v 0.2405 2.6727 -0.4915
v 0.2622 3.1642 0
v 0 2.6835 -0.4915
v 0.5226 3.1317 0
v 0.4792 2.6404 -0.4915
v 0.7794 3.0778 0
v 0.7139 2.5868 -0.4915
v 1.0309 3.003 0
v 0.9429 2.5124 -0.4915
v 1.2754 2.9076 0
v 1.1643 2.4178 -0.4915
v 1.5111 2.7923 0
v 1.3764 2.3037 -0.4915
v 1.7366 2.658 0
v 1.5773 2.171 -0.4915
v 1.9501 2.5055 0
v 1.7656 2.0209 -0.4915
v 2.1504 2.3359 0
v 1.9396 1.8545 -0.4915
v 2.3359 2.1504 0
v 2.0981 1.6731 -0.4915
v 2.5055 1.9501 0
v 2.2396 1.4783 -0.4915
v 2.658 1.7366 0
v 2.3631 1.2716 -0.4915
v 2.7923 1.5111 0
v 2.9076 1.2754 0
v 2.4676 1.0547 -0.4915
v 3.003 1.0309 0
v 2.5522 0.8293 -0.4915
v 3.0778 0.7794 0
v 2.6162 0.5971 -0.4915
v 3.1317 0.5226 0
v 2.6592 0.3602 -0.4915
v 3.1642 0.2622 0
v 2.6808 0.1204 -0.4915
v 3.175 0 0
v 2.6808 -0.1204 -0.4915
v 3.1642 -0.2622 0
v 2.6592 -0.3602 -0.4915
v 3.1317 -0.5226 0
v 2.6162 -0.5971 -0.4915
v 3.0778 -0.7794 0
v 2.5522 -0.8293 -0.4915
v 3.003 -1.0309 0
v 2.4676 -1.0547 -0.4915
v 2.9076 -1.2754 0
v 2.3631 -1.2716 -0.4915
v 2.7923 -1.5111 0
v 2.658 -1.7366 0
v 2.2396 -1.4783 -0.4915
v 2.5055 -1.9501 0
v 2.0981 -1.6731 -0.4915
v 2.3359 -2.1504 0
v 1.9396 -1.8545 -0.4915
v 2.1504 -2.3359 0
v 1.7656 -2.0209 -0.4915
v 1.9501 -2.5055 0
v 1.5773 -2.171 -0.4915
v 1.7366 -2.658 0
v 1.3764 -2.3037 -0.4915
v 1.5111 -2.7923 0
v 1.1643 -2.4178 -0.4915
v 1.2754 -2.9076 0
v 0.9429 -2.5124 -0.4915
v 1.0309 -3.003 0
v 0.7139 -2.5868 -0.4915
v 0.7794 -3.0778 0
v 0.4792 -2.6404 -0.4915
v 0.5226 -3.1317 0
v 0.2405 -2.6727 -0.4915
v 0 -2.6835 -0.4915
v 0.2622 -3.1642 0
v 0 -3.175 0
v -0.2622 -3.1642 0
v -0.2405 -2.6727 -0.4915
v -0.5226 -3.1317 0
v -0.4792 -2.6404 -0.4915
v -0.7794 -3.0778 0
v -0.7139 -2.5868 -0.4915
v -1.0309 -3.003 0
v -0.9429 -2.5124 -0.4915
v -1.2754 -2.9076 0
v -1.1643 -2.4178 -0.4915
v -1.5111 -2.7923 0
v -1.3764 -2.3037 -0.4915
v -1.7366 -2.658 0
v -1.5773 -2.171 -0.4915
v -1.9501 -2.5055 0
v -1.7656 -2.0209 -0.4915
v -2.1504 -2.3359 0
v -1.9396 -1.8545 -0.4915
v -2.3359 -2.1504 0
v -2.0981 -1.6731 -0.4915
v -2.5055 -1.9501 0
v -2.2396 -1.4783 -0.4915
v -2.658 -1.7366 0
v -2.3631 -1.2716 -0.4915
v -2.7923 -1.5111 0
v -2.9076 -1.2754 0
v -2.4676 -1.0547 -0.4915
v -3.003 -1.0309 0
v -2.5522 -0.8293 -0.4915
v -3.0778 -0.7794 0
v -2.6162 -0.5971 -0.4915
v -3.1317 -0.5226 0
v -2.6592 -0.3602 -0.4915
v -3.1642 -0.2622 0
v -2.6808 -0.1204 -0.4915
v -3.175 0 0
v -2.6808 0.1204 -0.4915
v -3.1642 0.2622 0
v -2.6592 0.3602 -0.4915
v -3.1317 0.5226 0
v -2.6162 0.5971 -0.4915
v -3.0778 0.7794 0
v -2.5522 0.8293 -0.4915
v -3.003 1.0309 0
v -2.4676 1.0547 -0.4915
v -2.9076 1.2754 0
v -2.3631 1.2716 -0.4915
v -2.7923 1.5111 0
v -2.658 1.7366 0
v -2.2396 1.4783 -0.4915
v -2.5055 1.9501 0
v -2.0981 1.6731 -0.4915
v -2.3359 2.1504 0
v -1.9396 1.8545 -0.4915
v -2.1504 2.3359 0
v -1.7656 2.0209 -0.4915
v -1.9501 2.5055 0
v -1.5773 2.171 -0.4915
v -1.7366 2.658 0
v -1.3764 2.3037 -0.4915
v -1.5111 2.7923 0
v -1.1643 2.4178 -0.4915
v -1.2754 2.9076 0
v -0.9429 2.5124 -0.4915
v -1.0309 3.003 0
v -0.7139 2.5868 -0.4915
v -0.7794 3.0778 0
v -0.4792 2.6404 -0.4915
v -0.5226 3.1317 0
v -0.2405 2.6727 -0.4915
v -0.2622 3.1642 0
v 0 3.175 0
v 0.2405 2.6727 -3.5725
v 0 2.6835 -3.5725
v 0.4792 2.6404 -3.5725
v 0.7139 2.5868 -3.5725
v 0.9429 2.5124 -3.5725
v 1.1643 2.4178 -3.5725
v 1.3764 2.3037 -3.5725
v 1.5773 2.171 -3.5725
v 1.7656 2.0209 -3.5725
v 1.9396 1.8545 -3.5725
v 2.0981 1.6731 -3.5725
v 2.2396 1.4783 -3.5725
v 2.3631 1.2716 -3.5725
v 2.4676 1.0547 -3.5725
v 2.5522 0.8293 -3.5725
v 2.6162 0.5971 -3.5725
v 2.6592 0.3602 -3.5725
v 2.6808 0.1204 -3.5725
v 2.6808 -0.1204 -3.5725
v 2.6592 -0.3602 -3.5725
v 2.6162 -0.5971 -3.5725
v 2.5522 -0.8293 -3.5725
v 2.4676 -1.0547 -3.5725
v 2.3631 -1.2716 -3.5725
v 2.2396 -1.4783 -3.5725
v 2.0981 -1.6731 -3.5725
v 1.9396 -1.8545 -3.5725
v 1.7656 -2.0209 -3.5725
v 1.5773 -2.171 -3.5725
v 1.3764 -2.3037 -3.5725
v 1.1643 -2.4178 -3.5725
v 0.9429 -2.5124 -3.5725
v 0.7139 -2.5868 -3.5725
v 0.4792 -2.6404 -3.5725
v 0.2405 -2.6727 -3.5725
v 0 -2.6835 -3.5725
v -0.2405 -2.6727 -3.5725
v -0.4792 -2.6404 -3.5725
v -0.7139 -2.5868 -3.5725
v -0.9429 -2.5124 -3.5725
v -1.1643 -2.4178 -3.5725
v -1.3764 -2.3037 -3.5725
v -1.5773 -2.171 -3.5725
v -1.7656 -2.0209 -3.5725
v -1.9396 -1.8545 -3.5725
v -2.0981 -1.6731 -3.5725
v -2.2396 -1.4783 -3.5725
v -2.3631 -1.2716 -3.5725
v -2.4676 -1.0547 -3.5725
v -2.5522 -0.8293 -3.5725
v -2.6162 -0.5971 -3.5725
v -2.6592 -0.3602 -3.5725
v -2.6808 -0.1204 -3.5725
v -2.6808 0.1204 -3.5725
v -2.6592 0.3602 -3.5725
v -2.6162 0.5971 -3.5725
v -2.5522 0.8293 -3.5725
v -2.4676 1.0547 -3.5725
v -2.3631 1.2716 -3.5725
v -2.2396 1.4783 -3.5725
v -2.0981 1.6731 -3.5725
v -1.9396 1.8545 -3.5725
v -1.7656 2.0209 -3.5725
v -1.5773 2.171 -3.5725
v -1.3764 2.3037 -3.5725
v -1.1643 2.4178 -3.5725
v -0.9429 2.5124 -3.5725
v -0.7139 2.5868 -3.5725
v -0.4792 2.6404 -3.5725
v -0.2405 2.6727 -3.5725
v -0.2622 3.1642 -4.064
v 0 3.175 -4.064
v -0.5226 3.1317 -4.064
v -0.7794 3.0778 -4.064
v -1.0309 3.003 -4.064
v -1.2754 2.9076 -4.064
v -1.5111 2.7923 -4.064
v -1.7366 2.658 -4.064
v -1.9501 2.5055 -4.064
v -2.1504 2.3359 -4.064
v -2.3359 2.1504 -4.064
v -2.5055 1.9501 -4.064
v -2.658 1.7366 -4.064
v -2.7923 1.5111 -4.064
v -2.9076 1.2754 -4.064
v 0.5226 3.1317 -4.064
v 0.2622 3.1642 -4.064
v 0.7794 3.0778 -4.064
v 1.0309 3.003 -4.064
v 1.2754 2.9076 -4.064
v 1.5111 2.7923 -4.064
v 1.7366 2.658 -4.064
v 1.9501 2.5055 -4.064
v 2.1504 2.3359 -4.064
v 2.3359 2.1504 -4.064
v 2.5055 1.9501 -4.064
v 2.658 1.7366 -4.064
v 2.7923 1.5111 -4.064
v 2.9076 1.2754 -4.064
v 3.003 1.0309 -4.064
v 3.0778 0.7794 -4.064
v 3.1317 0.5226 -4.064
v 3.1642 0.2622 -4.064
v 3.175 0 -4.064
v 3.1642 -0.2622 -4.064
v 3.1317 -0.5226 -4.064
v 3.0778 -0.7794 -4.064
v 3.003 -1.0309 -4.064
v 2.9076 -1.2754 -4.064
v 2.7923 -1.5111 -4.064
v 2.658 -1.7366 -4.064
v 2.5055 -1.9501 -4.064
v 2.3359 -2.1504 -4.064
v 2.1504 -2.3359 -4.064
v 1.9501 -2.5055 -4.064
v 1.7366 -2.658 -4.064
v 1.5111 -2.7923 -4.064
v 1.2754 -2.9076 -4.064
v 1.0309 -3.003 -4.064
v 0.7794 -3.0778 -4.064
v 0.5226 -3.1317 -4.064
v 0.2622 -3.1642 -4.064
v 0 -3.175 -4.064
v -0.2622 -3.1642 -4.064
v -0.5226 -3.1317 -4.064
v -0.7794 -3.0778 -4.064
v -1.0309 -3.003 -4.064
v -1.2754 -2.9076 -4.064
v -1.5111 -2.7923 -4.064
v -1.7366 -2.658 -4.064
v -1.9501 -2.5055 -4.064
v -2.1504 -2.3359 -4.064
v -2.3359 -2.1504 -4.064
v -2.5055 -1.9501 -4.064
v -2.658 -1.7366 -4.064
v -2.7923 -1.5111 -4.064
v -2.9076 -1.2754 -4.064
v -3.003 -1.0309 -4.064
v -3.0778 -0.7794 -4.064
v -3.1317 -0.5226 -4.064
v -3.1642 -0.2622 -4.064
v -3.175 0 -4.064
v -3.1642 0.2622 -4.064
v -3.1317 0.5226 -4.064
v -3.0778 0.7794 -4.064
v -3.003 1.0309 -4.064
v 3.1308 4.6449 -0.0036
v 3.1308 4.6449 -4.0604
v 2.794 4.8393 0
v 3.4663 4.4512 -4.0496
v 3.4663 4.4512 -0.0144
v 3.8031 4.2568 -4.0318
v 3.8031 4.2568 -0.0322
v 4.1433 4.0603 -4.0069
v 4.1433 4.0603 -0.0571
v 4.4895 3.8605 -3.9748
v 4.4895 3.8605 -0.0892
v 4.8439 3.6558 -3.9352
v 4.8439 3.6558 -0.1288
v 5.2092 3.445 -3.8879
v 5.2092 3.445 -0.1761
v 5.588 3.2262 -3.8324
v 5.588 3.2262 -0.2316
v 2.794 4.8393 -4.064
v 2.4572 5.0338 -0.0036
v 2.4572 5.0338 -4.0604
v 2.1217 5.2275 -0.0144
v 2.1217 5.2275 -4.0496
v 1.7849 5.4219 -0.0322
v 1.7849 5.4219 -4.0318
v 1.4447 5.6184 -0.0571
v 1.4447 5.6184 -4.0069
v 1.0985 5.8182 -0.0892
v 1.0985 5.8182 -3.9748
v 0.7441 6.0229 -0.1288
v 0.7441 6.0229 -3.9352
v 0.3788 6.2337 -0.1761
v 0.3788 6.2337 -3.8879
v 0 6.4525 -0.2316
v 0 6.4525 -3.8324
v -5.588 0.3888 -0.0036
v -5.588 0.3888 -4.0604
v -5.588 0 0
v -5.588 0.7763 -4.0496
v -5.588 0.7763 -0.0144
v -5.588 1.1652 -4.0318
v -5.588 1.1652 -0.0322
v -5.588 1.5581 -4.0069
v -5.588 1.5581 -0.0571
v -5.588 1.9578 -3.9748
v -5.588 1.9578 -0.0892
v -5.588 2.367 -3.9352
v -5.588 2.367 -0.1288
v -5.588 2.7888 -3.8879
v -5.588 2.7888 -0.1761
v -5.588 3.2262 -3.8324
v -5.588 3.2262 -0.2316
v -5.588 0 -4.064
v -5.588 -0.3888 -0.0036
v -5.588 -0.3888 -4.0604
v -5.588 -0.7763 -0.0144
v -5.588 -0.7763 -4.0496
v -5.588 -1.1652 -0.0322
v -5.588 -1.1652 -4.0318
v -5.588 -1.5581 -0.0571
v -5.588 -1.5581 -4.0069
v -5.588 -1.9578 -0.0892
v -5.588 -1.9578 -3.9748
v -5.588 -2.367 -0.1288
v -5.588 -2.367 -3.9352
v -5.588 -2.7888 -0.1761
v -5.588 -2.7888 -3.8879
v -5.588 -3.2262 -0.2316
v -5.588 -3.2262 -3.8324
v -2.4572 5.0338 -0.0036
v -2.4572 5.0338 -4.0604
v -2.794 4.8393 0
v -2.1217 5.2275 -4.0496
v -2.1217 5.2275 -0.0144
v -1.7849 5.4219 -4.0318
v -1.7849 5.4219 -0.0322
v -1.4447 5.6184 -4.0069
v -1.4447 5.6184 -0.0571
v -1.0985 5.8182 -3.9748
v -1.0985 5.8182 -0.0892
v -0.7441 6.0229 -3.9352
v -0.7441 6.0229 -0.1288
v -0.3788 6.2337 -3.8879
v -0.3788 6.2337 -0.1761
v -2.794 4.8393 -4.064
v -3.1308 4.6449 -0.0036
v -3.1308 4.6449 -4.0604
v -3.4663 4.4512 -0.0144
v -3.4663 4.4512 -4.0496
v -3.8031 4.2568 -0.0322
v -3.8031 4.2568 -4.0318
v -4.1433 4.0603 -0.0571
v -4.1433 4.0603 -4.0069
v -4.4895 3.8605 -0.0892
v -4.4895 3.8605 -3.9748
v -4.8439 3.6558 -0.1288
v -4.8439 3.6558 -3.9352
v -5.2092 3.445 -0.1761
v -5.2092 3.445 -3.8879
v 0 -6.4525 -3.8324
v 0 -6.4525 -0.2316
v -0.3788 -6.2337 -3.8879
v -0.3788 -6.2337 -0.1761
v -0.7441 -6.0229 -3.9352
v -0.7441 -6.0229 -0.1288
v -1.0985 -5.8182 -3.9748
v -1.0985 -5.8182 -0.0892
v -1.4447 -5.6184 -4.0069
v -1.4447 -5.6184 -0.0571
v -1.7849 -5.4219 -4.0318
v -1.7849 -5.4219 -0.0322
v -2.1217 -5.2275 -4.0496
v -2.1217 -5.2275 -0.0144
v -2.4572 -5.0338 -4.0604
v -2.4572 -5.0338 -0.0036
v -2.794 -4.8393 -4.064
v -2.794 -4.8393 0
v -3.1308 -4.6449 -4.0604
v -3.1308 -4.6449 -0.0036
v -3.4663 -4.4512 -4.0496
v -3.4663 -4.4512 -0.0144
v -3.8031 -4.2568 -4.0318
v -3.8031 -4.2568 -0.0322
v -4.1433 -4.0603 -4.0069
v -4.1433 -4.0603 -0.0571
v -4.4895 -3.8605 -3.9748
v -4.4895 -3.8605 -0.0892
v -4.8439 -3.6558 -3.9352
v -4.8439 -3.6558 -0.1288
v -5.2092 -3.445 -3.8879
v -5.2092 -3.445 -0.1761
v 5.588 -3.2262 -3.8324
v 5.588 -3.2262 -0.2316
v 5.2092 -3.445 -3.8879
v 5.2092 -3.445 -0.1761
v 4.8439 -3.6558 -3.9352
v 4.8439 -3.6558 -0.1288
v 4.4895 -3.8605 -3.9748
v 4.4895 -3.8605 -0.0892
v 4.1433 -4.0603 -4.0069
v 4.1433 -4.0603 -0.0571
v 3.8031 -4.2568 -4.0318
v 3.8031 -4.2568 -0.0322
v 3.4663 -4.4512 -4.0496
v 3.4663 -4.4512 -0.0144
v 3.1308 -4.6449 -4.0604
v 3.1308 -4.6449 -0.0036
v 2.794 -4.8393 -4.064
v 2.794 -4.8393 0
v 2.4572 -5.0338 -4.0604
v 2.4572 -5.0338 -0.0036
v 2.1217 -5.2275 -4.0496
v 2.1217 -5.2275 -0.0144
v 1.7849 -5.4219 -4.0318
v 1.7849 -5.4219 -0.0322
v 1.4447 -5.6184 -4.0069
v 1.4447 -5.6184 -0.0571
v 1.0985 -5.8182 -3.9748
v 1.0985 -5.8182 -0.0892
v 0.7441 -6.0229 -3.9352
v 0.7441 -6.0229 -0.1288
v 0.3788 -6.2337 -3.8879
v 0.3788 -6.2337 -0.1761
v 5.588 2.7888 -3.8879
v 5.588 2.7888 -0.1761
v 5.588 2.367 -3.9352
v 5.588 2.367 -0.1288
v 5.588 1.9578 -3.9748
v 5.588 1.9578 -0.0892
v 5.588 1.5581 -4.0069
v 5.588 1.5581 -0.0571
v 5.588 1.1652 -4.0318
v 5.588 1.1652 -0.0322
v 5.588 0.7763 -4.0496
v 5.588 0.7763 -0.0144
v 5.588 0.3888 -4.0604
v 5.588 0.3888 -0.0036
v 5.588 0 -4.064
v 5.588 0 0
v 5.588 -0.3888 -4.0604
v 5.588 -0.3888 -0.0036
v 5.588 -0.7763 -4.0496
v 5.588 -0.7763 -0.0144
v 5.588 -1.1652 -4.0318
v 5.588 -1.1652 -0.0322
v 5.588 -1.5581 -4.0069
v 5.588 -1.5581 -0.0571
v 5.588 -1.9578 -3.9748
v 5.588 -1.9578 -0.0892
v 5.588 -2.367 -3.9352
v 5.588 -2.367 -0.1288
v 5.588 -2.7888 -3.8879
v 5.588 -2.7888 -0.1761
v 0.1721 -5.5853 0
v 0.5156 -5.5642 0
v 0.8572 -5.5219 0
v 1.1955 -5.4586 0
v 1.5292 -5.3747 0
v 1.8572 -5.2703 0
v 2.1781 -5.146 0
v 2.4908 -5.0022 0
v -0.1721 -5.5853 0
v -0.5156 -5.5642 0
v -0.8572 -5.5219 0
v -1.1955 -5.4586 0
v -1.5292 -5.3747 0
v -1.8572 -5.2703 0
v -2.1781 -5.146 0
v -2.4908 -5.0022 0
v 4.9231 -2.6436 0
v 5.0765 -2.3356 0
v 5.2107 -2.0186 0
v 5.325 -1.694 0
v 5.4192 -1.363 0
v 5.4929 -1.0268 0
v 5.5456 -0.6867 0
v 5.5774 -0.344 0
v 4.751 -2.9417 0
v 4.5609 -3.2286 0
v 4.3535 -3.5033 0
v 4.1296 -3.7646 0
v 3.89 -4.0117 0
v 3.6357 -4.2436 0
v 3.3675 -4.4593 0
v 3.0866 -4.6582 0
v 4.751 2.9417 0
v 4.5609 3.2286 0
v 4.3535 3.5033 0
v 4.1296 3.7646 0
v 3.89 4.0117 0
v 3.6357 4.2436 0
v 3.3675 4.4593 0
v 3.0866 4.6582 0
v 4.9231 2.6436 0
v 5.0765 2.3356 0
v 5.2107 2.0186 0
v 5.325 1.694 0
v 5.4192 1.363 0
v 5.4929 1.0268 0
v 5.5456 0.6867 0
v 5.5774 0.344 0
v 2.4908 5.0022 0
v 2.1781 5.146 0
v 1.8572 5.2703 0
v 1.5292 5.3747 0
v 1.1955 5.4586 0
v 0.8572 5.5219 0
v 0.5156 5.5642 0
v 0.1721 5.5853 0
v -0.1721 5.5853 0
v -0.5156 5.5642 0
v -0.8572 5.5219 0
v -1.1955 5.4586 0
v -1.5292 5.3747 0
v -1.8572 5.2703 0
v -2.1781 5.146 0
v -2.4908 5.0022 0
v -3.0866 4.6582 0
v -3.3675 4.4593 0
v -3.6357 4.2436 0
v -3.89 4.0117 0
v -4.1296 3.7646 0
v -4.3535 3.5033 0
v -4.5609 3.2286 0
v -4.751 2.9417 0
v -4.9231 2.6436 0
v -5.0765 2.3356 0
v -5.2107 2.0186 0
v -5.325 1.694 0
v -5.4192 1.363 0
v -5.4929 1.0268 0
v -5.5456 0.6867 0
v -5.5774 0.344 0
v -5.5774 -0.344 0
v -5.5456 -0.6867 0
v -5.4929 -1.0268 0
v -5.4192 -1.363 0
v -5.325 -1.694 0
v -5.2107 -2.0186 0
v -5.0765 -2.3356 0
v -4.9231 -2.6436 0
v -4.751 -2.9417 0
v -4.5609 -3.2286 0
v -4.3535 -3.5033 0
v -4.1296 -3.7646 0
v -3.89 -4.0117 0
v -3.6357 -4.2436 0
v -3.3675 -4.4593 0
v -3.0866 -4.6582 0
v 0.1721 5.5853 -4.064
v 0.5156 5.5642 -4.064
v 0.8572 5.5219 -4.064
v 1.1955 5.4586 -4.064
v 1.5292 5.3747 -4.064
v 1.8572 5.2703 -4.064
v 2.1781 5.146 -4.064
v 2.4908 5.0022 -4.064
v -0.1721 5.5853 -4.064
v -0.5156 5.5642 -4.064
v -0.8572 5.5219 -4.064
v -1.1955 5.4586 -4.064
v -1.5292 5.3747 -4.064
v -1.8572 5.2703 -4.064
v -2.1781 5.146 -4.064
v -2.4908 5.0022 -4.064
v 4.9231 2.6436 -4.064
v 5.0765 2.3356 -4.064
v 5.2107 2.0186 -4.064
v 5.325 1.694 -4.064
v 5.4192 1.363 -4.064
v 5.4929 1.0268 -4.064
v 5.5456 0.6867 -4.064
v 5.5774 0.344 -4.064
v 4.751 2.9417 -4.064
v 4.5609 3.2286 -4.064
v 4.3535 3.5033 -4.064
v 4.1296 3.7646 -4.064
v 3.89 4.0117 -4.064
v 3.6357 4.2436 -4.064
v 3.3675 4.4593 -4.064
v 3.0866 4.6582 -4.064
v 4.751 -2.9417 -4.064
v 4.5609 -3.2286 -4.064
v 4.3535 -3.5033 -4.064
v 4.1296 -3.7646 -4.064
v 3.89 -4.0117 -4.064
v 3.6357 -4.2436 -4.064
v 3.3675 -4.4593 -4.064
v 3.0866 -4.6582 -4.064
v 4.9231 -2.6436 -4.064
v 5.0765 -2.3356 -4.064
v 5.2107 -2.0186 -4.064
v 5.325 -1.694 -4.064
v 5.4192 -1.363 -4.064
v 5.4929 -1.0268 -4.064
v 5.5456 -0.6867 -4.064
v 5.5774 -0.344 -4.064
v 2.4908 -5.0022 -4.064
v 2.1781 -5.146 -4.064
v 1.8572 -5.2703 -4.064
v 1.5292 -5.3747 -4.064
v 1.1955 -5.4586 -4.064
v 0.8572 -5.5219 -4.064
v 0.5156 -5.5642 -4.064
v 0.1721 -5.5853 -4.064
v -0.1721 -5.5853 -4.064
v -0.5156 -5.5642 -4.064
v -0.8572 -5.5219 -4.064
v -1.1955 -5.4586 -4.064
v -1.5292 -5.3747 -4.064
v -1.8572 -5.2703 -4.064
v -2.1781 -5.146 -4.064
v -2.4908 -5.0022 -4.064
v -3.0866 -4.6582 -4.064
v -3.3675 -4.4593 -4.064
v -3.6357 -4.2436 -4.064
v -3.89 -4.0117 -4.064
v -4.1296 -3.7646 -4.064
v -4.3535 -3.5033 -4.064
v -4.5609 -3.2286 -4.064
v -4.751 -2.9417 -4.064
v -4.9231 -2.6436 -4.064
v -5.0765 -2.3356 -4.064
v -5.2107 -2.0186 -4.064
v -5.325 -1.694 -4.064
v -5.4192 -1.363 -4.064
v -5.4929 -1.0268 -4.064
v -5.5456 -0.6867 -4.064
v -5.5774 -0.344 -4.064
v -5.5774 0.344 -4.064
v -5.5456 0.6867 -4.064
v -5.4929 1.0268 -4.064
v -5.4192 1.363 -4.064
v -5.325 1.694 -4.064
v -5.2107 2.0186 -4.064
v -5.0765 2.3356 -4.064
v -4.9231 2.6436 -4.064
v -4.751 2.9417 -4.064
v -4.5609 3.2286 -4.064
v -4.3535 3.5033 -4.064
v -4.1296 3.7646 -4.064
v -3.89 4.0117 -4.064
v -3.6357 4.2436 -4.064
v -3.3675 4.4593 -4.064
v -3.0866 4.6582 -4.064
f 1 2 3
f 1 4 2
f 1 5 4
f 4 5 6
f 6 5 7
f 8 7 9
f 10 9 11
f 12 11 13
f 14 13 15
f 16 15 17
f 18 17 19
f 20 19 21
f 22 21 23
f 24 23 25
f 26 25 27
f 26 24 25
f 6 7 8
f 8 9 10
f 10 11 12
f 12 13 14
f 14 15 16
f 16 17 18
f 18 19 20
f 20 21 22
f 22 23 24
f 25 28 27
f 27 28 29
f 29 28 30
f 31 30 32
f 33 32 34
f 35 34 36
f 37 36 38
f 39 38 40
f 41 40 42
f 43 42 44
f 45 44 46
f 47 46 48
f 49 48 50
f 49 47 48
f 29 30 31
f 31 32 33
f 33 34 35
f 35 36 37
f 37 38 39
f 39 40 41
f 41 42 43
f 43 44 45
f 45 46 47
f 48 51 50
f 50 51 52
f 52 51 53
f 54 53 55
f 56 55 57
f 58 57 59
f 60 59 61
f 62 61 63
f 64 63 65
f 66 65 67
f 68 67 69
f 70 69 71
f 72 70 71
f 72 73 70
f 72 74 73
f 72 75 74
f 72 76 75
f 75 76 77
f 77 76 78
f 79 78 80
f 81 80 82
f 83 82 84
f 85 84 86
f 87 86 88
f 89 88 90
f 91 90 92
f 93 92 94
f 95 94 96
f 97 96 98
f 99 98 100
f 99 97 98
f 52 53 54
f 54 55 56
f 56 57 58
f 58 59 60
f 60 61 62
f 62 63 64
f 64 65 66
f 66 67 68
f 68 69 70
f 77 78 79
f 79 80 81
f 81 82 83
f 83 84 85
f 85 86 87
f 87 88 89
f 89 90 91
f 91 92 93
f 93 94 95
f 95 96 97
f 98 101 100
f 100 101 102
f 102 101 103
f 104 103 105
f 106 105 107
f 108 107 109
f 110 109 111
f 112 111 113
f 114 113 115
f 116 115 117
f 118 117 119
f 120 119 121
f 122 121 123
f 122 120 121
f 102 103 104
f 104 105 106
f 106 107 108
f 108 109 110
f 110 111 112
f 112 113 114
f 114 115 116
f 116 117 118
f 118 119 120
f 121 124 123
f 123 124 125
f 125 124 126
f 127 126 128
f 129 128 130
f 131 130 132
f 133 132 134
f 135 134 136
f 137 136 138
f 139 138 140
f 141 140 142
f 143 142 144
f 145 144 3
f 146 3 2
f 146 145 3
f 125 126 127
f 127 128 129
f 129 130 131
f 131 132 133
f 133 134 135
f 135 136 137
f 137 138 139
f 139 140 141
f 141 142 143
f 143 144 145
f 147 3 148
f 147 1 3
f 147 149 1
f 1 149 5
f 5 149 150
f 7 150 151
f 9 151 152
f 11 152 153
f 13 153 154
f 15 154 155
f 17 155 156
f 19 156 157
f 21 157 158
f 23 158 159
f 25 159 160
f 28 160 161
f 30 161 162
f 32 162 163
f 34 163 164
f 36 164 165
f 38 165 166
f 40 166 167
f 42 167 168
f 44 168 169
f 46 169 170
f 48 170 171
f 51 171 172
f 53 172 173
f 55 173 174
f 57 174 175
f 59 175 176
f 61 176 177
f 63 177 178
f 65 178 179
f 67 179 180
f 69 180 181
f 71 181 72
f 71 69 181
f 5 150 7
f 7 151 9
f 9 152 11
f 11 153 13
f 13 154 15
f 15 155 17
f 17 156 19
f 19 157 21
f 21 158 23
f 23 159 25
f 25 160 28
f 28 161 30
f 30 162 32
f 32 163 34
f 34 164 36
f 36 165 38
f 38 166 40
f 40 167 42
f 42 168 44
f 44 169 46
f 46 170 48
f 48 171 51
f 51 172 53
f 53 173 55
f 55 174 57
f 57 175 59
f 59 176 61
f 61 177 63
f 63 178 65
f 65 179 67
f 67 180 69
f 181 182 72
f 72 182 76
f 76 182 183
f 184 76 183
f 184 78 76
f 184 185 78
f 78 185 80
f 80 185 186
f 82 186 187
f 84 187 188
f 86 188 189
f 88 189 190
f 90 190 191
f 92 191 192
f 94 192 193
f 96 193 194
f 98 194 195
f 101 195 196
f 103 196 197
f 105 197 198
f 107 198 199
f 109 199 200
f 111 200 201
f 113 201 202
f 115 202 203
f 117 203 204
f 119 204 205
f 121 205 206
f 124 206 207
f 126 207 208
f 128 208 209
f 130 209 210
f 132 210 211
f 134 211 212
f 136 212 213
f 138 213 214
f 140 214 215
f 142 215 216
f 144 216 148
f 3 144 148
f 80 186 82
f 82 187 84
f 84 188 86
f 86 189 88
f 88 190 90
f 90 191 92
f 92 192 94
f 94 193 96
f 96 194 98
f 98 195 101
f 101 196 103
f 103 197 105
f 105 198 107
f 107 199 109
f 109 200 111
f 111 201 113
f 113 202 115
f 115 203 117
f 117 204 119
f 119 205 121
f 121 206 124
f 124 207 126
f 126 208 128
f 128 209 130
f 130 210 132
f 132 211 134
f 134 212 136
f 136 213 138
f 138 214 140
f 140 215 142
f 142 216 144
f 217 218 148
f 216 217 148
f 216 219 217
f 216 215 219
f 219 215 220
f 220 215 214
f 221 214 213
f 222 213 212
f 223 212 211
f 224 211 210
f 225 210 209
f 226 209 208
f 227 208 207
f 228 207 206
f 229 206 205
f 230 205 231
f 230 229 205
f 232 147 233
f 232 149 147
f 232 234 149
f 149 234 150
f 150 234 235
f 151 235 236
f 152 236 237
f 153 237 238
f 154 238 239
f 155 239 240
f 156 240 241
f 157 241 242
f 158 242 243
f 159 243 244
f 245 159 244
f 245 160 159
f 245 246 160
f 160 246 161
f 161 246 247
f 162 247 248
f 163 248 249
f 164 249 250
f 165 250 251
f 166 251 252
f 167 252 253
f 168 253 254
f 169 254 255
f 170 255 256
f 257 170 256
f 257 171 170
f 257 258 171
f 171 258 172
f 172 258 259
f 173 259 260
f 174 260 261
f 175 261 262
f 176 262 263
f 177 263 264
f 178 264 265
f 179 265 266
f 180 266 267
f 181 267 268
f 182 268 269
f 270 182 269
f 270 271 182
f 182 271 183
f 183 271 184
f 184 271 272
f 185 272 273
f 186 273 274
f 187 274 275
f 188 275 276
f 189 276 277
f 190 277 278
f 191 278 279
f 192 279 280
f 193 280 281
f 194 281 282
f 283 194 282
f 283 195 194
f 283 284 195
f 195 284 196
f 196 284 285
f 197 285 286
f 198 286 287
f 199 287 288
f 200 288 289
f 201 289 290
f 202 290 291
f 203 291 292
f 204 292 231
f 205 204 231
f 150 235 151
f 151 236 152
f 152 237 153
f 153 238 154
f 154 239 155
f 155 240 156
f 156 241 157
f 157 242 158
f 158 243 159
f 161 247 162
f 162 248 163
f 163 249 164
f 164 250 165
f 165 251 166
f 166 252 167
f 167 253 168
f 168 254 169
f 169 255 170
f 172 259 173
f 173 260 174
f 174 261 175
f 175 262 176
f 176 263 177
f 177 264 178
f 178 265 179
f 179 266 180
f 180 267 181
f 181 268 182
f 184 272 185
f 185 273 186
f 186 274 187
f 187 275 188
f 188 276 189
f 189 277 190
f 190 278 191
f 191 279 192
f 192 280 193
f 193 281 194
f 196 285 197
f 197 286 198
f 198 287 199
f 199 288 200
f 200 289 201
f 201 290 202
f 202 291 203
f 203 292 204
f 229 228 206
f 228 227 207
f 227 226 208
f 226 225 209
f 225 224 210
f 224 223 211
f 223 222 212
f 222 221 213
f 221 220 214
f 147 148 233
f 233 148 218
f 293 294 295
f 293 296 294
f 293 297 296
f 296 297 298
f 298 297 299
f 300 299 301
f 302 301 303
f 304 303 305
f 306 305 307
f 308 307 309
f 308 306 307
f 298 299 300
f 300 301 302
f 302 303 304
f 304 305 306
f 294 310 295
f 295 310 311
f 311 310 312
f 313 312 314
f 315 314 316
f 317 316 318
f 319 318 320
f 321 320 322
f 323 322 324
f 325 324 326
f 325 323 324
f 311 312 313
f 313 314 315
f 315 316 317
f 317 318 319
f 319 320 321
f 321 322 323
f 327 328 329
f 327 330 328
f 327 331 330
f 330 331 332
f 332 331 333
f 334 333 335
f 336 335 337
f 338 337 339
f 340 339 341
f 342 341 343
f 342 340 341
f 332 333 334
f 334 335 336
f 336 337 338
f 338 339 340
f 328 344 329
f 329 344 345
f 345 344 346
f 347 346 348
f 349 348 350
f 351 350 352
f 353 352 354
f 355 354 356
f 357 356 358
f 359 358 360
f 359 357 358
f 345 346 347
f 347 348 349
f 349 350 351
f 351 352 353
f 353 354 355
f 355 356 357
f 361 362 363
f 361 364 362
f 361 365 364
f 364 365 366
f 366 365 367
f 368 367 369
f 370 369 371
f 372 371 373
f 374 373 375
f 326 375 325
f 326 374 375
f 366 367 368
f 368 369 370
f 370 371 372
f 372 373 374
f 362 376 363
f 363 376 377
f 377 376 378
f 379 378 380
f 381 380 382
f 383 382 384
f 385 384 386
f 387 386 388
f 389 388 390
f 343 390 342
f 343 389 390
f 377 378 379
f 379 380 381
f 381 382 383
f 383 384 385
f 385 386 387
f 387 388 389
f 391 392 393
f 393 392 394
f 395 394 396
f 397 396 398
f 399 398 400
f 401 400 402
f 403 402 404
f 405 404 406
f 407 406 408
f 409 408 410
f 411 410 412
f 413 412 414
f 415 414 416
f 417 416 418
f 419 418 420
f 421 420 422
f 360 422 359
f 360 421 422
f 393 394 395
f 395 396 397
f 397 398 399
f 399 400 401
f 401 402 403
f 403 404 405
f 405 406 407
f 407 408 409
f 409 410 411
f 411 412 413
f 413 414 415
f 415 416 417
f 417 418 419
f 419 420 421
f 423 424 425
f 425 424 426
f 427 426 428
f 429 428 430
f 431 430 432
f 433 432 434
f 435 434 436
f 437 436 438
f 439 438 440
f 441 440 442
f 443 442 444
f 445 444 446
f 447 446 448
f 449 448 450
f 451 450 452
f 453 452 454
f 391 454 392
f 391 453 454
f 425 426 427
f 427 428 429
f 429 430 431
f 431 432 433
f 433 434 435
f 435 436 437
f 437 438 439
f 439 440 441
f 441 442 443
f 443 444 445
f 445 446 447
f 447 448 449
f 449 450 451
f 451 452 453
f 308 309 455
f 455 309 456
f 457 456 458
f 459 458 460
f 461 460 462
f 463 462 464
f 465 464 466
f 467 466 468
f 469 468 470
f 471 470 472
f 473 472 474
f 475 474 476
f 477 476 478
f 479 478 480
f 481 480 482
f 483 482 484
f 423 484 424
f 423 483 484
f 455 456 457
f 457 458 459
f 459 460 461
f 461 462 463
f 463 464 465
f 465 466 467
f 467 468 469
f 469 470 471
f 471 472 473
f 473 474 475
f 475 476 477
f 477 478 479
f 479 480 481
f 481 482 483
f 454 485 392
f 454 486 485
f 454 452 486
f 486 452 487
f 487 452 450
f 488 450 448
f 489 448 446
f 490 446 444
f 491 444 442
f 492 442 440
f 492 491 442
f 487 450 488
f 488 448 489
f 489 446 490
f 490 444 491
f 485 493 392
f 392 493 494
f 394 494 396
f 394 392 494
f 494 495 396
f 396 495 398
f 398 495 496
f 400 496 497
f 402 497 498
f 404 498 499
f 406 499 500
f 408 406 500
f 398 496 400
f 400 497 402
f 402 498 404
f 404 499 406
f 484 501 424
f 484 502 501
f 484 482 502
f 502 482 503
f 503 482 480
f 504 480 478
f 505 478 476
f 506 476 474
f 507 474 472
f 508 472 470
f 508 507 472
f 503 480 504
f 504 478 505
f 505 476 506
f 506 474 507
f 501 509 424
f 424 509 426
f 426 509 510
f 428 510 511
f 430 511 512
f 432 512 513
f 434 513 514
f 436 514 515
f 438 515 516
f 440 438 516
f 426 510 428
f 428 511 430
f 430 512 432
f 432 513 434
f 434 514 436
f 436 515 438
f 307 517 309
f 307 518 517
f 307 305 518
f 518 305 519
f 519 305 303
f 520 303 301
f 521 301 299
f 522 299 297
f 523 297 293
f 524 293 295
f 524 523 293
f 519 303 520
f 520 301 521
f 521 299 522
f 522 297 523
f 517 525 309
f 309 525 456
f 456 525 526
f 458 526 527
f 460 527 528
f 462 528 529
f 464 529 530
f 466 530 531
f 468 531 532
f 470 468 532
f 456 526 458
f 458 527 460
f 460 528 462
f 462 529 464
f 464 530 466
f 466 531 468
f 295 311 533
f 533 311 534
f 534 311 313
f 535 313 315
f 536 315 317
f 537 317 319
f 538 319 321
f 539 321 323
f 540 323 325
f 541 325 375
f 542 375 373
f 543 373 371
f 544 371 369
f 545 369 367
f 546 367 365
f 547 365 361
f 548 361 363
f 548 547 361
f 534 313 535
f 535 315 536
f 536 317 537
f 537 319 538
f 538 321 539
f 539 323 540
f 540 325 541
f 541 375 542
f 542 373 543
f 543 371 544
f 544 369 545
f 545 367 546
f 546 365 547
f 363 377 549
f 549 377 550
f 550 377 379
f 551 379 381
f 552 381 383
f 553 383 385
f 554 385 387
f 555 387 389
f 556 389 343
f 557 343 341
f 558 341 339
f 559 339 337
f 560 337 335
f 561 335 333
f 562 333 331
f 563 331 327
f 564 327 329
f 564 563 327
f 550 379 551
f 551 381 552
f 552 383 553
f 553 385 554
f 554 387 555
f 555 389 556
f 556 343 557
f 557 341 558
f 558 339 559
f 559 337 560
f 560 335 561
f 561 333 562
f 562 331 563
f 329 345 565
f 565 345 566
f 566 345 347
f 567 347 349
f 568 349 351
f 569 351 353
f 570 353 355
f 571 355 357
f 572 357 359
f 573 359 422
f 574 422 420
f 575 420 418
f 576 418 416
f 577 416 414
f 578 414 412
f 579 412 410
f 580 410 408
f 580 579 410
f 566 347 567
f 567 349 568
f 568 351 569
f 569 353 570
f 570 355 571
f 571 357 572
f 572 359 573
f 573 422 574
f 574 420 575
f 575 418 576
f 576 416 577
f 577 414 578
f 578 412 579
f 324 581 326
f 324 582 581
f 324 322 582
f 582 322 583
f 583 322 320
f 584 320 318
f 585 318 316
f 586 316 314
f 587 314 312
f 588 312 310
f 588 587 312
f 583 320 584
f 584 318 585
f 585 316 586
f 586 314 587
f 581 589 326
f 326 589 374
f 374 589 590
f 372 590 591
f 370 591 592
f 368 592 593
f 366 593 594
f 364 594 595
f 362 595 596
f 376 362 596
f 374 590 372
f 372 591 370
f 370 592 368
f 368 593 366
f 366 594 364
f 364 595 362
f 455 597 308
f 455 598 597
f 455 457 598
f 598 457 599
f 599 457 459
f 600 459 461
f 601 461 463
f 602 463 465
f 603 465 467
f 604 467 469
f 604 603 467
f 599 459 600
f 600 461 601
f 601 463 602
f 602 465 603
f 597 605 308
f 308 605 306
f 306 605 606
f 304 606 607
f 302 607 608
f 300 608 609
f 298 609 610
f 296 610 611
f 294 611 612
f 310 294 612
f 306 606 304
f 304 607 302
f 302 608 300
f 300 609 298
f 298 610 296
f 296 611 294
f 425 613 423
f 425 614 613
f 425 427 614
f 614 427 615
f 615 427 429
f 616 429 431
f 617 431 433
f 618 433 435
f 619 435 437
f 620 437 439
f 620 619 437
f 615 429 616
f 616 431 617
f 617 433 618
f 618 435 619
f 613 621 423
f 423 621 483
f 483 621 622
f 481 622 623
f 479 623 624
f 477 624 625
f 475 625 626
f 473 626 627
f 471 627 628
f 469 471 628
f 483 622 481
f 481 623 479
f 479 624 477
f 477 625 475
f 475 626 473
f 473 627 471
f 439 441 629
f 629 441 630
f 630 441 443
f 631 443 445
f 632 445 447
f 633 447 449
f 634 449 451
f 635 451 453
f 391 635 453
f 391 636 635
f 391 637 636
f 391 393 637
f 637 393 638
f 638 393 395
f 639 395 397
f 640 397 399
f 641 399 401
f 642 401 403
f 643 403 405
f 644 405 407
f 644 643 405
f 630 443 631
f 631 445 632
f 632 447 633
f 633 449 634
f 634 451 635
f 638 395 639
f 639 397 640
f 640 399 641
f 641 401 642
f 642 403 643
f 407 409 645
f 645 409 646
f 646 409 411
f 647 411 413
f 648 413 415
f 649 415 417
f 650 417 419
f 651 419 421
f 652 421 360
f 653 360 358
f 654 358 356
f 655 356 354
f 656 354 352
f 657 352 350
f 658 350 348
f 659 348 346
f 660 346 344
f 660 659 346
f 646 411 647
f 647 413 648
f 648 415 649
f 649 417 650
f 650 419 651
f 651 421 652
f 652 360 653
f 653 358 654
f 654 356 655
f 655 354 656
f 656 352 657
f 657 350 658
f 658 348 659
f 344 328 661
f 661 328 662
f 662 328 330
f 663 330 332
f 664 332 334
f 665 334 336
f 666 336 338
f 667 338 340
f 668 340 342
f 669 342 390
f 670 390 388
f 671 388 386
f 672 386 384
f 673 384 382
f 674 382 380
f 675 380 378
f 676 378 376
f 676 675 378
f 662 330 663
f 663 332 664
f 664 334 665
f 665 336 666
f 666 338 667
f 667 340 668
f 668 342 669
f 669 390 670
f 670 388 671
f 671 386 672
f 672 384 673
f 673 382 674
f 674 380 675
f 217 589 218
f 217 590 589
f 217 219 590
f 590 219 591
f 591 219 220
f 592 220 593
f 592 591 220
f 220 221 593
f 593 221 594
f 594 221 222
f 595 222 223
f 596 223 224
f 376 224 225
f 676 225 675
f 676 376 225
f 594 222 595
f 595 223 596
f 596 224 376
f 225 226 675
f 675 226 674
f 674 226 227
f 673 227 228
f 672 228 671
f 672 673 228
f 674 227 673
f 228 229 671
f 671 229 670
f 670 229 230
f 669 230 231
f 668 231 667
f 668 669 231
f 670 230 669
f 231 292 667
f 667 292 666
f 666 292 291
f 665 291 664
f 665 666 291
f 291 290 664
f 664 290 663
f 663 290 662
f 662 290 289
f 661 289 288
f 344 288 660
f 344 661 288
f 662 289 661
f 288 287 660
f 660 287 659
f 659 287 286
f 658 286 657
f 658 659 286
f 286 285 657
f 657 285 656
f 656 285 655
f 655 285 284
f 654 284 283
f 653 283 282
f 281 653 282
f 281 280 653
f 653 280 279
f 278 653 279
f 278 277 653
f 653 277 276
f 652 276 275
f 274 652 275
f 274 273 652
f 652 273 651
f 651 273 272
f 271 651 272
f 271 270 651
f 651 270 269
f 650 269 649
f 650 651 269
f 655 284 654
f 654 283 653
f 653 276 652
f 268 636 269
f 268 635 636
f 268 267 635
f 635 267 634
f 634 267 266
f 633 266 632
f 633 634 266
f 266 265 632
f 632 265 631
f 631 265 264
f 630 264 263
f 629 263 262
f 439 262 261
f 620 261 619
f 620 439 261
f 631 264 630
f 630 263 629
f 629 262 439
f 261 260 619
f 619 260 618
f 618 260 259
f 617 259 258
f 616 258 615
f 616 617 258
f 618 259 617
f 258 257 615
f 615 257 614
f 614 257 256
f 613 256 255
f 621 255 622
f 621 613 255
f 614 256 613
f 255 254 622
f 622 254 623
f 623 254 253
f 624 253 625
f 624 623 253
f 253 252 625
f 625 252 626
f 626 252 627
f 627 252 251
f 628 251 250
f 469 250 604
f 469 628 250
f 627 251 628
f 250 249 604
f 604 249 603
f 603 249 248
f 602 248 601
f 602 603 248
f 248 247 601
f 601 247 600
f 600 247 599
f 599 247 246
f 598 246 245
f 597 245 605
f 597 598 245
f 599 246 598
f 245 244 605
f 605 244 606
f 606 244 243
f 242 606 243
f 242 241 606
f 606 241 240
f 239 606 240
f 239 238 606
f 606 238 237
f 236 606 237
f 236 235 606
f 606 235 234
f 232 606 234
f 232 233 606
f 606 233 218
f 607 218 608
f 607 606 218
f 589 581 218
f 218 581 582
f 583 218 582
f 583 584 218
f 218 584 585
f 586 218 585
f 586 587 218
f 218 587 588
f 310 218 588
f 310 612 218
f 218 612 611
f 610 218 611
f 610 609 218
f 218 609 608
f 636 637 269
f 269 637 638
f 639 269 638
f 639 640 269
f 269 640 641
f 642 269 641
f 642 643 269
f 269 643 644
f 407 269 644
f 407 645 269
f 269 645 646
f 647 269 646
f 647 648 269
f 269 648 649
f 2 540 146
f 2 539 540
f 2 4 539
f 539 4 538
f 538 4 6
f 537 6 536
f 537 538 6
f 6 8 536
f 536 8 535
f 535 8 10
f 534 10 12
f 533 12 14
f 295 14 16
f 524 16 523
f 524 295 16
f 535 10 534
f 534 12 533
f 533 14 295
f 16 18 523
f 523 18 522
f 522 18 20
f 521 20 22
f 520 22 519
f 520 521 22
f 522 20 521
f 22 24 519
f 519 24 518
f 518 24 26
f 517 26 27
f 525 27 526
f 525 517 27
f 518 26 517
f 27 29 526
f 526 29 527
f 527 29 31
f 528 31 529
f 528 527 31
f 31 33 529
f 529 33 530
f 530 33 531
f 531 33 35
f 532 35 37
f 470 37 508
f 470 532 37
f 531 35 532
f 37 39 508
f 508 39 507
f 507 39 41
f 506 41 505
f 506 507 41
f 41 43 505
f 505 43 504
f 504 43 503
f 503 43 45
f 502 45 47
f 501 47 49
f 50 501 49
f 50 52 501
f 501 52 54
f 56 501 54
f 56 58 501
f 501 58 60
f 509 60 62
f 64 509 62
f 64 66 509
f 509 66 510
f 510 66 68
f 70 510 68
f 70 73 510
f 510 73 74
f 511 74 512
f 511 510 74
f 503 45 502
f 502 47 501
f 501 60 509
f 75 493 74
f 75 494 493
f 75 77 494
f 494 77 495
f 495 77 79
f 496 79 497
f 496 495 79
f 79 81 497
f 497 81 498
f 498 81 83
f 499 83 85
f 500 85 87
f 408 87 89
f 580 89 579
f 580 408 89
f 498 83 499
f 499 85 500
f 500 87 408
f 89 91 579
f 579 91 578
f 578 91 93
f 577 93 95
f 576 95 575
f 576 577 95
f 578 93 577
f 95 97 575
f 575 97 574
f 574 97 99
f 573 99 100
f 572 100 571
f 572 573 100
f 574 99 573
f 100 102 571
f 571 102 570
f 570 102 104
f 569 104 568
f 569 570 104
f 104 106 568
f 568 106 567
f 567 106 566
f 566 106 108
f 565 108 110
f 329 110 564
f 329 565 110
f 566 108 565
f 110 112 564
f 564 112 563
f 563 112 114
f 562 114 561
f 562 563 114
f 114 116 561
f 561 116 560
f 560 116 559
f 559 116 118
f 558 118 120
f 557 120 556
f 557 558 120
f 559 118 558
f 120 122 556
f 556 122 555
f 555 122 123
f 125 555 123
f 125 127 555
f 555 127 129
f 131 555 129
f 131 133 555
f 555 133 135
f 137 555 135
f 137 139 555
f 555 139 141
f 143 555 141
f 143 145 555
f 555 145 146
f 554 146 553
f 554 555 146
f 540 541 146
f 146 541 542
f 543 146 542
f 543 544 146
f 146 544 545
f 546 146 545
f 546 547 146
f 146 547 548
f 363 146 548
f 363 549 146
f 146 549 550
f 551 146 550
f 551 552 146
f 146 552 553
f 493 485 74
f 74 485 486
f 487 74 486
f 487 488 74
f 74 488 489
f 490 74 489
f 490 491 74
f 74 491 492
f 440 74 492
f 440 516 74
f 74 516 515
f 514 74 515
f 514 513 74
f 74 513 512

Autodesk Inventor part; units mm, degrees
sketch "Sketch_8" plane through (0, 0, 0) normal (1, 0, 0) x (0, 1, 0)
  line L0 (0, -4.064) -> (0, 0)
  line L1 (0, 0) -> (5.588, 0)
  line L2 (5.588, 0) -> (6.7056, -0.2995)
  line L3 (6.7056, -0.2995) -> (6.7056, -3.7645)
  line L4 (6.7056, -3.7645) -> (5.588, -4.064)
  line L5 (5.588, -4.064) -> (0, -4.064)
  line L6 (0, -4.064) -> (0, 0)
sketch "Sketch_10" plane through (0, 0, 0) normal (0, 0, 1) x (1, 0, 0)
  line L0 (-11.176, 11.176) -> (-11.176, -11.176)
  line L1 (-11.176, -11.176) -> (11.176, -11.176)
  line L2 (11.176, -11.176) -> (11.176, 11.176)
  line L3 (11.176, 11.176) -> (-11.176, 11.176)
  line L4 (-5.588, 3.2262) -> (-5.588, -3.2262)
  line L5 (-5.588, -3.2262) -> (0, -6.4525)
  line L6 (0, -6.4525) -> (5.588, -3.2262)
  line L7 (5.588, -3.2262) -> (5.588, 3.2262)
  line L8 (5.588, 3.2262) -> (0, 6.4525)
  line L9 (0, 6.4525) -> (-5.588, 3.2262)
revolve "Revolution1" add sketch "Sketch_8" angle 360 about axis through (0, 0, -4.064) along (0, 0, -1)
extrude "Extrusion1" cut sketch "Sketch_10" against normal blind 4.064
sketch "Sketch_11" plane through (0, 0, 0) normal (1, 0, 0) x (0, 1, 0)
  line L0 (0, -4.064) -> (0, 0)
  line L1 (0, 0) -> (3.175, 0)
  line L2 (3.175, 0) -> (2.6835, -0.4915)
  line L3 (2.6835, -0.4915) -> (2.6835, -3.5725)
  line L4 (2.6835, -3.5725) -> (3.175, -4.064)
  line L5 (3.175, -4.064) -> (0, -4.064)
  line L6 (0, -4.064) -> (0, 0)
revolve "Revolution2" cut sketch "Sketch_11" angle 360 about axis through (0, 0, -4.064) along (0, 0, -1)
thread "Thread1"
ref_plane "NUT_XY" through (0, 0, 0) normal (0, 0, 1) x (1, 0, 0)
ref_plane "NUT_YZ" through (0, 0, 0) normal (1, 0, 0) x (0, 1, 0)
ref_plane "NUT_ZX" through (0, 0, 0) normal (0, 1, 0) x (0, 0, 1)
ref_plane "a1_XY" through (-5.588, 5.588, 0) normal (0, 0, 1) x (1, 0, 0)
ref_plane "a1_YZ" through (-5.588, 5.588, 0) normal (1, 0, 0) x (0, 1, 0)
ref_plane "a1_ZX" through (-5.588, 5.588, 0) normal (0, 1, 0) x (0, 0, 1)
ref_plane "a2_XY" through (5.588, 5.588, 0) normal (0, 0, 1) x (1, 0, 0)
ref_plane "a2_YZ" through (5.588, 5.588, 0) normal (1, 0, 0) x (0, 1, 0)
ref_plane "a2_ZX" through (5.588, 5.588, 0) normal (0, 1, 0) x (0, 0, 1)
ref_plane "b1_XY" through (0, 5.588, 0) normal (1, 0, 0) x (0, 0, -1)
ref_plane "b1_YZ" through (0, 5.588, 0) normal (0, 0, -1) x (0, 1, 0)
ref_plane "b1_ZX" through (0, 5.588, 0) normal (0, 1, 0) x (1, 0, 0)
ref_plane "b2_XY" through (0, 5.588, -4.064) normal (1, 0, 0) x (0, 0, -1)
ref_plane "b2_YZ" through (0, 5.588, -4.064) normal (0, 0, -1) x (0, 1, 0)
ref_plane "b2_ZX" through (0, 5.588, -4.064) normal (0, 1, 0) x (1, 0, 0)
ref_plane "e_XY" through (0, 0, -4.064) normal (1, 0, 0) x (0, 0, -1)
ref_plane "e_YZ" through (0, 0, -4.064) normal (0, 0, -1) x (0, 1, 0)
ref_plane "e_ZX" through (0, 0, -4.064) normal (0, 1, 0) x (1, 0, 0)
ref_plane "th1_XY" through (0, 3.175, -4.064) normal (1, 0, 0) x (0, 0, -1)
ref_plane "th1_YZ" through (0, 3.175, -4.064) normal (0, 0, -1) x (0, 1, 0)
ref_plane "th1_ZX" through (0, 3.175, -4.064) normal (0, 1, 0) x (1, 0, 0)
ref_plane "th2_XY" through (0, -3.175, -4.064) normal (1, 0, 0) x (0, 0, -1)
ref_plane "th2_YZ" through (0, -3.175, -4.064) normal (0, 0, -1) x (0, 1, 0)
ref_plane "th2_ZX" through (0, -3.175, -4.064) normal (0, 1, 0) x (1, 0, 0)
ref_plane "ol1_XY" through (0, 0, -5.588) normal (0, 1, 0) x (1, 0, 0)
ref_plane "ol1_YZ" through (0, 0, -5.588) normal (1, 0, 0) x (0, 0, -1)
ref_plane "ol1_ZX" through (0, 0, -5.588) normal (0, 0, -1) x (0, 1, 0)
ref_plane "ol2_XY" through (4.064, 0, -5.588) normal (0, 1, 0) x (1, 0, 0)
ref_plane "ol2_YZ" through (4.064, 0, -5.588) normal (1, 0, 0) x (0, 0, -1)
ref_plane "ol2_ZX" through (4.064, 0, -5.588) normal (0, 0, -1) x (0, 1, 0)
properties part number "D-344"
